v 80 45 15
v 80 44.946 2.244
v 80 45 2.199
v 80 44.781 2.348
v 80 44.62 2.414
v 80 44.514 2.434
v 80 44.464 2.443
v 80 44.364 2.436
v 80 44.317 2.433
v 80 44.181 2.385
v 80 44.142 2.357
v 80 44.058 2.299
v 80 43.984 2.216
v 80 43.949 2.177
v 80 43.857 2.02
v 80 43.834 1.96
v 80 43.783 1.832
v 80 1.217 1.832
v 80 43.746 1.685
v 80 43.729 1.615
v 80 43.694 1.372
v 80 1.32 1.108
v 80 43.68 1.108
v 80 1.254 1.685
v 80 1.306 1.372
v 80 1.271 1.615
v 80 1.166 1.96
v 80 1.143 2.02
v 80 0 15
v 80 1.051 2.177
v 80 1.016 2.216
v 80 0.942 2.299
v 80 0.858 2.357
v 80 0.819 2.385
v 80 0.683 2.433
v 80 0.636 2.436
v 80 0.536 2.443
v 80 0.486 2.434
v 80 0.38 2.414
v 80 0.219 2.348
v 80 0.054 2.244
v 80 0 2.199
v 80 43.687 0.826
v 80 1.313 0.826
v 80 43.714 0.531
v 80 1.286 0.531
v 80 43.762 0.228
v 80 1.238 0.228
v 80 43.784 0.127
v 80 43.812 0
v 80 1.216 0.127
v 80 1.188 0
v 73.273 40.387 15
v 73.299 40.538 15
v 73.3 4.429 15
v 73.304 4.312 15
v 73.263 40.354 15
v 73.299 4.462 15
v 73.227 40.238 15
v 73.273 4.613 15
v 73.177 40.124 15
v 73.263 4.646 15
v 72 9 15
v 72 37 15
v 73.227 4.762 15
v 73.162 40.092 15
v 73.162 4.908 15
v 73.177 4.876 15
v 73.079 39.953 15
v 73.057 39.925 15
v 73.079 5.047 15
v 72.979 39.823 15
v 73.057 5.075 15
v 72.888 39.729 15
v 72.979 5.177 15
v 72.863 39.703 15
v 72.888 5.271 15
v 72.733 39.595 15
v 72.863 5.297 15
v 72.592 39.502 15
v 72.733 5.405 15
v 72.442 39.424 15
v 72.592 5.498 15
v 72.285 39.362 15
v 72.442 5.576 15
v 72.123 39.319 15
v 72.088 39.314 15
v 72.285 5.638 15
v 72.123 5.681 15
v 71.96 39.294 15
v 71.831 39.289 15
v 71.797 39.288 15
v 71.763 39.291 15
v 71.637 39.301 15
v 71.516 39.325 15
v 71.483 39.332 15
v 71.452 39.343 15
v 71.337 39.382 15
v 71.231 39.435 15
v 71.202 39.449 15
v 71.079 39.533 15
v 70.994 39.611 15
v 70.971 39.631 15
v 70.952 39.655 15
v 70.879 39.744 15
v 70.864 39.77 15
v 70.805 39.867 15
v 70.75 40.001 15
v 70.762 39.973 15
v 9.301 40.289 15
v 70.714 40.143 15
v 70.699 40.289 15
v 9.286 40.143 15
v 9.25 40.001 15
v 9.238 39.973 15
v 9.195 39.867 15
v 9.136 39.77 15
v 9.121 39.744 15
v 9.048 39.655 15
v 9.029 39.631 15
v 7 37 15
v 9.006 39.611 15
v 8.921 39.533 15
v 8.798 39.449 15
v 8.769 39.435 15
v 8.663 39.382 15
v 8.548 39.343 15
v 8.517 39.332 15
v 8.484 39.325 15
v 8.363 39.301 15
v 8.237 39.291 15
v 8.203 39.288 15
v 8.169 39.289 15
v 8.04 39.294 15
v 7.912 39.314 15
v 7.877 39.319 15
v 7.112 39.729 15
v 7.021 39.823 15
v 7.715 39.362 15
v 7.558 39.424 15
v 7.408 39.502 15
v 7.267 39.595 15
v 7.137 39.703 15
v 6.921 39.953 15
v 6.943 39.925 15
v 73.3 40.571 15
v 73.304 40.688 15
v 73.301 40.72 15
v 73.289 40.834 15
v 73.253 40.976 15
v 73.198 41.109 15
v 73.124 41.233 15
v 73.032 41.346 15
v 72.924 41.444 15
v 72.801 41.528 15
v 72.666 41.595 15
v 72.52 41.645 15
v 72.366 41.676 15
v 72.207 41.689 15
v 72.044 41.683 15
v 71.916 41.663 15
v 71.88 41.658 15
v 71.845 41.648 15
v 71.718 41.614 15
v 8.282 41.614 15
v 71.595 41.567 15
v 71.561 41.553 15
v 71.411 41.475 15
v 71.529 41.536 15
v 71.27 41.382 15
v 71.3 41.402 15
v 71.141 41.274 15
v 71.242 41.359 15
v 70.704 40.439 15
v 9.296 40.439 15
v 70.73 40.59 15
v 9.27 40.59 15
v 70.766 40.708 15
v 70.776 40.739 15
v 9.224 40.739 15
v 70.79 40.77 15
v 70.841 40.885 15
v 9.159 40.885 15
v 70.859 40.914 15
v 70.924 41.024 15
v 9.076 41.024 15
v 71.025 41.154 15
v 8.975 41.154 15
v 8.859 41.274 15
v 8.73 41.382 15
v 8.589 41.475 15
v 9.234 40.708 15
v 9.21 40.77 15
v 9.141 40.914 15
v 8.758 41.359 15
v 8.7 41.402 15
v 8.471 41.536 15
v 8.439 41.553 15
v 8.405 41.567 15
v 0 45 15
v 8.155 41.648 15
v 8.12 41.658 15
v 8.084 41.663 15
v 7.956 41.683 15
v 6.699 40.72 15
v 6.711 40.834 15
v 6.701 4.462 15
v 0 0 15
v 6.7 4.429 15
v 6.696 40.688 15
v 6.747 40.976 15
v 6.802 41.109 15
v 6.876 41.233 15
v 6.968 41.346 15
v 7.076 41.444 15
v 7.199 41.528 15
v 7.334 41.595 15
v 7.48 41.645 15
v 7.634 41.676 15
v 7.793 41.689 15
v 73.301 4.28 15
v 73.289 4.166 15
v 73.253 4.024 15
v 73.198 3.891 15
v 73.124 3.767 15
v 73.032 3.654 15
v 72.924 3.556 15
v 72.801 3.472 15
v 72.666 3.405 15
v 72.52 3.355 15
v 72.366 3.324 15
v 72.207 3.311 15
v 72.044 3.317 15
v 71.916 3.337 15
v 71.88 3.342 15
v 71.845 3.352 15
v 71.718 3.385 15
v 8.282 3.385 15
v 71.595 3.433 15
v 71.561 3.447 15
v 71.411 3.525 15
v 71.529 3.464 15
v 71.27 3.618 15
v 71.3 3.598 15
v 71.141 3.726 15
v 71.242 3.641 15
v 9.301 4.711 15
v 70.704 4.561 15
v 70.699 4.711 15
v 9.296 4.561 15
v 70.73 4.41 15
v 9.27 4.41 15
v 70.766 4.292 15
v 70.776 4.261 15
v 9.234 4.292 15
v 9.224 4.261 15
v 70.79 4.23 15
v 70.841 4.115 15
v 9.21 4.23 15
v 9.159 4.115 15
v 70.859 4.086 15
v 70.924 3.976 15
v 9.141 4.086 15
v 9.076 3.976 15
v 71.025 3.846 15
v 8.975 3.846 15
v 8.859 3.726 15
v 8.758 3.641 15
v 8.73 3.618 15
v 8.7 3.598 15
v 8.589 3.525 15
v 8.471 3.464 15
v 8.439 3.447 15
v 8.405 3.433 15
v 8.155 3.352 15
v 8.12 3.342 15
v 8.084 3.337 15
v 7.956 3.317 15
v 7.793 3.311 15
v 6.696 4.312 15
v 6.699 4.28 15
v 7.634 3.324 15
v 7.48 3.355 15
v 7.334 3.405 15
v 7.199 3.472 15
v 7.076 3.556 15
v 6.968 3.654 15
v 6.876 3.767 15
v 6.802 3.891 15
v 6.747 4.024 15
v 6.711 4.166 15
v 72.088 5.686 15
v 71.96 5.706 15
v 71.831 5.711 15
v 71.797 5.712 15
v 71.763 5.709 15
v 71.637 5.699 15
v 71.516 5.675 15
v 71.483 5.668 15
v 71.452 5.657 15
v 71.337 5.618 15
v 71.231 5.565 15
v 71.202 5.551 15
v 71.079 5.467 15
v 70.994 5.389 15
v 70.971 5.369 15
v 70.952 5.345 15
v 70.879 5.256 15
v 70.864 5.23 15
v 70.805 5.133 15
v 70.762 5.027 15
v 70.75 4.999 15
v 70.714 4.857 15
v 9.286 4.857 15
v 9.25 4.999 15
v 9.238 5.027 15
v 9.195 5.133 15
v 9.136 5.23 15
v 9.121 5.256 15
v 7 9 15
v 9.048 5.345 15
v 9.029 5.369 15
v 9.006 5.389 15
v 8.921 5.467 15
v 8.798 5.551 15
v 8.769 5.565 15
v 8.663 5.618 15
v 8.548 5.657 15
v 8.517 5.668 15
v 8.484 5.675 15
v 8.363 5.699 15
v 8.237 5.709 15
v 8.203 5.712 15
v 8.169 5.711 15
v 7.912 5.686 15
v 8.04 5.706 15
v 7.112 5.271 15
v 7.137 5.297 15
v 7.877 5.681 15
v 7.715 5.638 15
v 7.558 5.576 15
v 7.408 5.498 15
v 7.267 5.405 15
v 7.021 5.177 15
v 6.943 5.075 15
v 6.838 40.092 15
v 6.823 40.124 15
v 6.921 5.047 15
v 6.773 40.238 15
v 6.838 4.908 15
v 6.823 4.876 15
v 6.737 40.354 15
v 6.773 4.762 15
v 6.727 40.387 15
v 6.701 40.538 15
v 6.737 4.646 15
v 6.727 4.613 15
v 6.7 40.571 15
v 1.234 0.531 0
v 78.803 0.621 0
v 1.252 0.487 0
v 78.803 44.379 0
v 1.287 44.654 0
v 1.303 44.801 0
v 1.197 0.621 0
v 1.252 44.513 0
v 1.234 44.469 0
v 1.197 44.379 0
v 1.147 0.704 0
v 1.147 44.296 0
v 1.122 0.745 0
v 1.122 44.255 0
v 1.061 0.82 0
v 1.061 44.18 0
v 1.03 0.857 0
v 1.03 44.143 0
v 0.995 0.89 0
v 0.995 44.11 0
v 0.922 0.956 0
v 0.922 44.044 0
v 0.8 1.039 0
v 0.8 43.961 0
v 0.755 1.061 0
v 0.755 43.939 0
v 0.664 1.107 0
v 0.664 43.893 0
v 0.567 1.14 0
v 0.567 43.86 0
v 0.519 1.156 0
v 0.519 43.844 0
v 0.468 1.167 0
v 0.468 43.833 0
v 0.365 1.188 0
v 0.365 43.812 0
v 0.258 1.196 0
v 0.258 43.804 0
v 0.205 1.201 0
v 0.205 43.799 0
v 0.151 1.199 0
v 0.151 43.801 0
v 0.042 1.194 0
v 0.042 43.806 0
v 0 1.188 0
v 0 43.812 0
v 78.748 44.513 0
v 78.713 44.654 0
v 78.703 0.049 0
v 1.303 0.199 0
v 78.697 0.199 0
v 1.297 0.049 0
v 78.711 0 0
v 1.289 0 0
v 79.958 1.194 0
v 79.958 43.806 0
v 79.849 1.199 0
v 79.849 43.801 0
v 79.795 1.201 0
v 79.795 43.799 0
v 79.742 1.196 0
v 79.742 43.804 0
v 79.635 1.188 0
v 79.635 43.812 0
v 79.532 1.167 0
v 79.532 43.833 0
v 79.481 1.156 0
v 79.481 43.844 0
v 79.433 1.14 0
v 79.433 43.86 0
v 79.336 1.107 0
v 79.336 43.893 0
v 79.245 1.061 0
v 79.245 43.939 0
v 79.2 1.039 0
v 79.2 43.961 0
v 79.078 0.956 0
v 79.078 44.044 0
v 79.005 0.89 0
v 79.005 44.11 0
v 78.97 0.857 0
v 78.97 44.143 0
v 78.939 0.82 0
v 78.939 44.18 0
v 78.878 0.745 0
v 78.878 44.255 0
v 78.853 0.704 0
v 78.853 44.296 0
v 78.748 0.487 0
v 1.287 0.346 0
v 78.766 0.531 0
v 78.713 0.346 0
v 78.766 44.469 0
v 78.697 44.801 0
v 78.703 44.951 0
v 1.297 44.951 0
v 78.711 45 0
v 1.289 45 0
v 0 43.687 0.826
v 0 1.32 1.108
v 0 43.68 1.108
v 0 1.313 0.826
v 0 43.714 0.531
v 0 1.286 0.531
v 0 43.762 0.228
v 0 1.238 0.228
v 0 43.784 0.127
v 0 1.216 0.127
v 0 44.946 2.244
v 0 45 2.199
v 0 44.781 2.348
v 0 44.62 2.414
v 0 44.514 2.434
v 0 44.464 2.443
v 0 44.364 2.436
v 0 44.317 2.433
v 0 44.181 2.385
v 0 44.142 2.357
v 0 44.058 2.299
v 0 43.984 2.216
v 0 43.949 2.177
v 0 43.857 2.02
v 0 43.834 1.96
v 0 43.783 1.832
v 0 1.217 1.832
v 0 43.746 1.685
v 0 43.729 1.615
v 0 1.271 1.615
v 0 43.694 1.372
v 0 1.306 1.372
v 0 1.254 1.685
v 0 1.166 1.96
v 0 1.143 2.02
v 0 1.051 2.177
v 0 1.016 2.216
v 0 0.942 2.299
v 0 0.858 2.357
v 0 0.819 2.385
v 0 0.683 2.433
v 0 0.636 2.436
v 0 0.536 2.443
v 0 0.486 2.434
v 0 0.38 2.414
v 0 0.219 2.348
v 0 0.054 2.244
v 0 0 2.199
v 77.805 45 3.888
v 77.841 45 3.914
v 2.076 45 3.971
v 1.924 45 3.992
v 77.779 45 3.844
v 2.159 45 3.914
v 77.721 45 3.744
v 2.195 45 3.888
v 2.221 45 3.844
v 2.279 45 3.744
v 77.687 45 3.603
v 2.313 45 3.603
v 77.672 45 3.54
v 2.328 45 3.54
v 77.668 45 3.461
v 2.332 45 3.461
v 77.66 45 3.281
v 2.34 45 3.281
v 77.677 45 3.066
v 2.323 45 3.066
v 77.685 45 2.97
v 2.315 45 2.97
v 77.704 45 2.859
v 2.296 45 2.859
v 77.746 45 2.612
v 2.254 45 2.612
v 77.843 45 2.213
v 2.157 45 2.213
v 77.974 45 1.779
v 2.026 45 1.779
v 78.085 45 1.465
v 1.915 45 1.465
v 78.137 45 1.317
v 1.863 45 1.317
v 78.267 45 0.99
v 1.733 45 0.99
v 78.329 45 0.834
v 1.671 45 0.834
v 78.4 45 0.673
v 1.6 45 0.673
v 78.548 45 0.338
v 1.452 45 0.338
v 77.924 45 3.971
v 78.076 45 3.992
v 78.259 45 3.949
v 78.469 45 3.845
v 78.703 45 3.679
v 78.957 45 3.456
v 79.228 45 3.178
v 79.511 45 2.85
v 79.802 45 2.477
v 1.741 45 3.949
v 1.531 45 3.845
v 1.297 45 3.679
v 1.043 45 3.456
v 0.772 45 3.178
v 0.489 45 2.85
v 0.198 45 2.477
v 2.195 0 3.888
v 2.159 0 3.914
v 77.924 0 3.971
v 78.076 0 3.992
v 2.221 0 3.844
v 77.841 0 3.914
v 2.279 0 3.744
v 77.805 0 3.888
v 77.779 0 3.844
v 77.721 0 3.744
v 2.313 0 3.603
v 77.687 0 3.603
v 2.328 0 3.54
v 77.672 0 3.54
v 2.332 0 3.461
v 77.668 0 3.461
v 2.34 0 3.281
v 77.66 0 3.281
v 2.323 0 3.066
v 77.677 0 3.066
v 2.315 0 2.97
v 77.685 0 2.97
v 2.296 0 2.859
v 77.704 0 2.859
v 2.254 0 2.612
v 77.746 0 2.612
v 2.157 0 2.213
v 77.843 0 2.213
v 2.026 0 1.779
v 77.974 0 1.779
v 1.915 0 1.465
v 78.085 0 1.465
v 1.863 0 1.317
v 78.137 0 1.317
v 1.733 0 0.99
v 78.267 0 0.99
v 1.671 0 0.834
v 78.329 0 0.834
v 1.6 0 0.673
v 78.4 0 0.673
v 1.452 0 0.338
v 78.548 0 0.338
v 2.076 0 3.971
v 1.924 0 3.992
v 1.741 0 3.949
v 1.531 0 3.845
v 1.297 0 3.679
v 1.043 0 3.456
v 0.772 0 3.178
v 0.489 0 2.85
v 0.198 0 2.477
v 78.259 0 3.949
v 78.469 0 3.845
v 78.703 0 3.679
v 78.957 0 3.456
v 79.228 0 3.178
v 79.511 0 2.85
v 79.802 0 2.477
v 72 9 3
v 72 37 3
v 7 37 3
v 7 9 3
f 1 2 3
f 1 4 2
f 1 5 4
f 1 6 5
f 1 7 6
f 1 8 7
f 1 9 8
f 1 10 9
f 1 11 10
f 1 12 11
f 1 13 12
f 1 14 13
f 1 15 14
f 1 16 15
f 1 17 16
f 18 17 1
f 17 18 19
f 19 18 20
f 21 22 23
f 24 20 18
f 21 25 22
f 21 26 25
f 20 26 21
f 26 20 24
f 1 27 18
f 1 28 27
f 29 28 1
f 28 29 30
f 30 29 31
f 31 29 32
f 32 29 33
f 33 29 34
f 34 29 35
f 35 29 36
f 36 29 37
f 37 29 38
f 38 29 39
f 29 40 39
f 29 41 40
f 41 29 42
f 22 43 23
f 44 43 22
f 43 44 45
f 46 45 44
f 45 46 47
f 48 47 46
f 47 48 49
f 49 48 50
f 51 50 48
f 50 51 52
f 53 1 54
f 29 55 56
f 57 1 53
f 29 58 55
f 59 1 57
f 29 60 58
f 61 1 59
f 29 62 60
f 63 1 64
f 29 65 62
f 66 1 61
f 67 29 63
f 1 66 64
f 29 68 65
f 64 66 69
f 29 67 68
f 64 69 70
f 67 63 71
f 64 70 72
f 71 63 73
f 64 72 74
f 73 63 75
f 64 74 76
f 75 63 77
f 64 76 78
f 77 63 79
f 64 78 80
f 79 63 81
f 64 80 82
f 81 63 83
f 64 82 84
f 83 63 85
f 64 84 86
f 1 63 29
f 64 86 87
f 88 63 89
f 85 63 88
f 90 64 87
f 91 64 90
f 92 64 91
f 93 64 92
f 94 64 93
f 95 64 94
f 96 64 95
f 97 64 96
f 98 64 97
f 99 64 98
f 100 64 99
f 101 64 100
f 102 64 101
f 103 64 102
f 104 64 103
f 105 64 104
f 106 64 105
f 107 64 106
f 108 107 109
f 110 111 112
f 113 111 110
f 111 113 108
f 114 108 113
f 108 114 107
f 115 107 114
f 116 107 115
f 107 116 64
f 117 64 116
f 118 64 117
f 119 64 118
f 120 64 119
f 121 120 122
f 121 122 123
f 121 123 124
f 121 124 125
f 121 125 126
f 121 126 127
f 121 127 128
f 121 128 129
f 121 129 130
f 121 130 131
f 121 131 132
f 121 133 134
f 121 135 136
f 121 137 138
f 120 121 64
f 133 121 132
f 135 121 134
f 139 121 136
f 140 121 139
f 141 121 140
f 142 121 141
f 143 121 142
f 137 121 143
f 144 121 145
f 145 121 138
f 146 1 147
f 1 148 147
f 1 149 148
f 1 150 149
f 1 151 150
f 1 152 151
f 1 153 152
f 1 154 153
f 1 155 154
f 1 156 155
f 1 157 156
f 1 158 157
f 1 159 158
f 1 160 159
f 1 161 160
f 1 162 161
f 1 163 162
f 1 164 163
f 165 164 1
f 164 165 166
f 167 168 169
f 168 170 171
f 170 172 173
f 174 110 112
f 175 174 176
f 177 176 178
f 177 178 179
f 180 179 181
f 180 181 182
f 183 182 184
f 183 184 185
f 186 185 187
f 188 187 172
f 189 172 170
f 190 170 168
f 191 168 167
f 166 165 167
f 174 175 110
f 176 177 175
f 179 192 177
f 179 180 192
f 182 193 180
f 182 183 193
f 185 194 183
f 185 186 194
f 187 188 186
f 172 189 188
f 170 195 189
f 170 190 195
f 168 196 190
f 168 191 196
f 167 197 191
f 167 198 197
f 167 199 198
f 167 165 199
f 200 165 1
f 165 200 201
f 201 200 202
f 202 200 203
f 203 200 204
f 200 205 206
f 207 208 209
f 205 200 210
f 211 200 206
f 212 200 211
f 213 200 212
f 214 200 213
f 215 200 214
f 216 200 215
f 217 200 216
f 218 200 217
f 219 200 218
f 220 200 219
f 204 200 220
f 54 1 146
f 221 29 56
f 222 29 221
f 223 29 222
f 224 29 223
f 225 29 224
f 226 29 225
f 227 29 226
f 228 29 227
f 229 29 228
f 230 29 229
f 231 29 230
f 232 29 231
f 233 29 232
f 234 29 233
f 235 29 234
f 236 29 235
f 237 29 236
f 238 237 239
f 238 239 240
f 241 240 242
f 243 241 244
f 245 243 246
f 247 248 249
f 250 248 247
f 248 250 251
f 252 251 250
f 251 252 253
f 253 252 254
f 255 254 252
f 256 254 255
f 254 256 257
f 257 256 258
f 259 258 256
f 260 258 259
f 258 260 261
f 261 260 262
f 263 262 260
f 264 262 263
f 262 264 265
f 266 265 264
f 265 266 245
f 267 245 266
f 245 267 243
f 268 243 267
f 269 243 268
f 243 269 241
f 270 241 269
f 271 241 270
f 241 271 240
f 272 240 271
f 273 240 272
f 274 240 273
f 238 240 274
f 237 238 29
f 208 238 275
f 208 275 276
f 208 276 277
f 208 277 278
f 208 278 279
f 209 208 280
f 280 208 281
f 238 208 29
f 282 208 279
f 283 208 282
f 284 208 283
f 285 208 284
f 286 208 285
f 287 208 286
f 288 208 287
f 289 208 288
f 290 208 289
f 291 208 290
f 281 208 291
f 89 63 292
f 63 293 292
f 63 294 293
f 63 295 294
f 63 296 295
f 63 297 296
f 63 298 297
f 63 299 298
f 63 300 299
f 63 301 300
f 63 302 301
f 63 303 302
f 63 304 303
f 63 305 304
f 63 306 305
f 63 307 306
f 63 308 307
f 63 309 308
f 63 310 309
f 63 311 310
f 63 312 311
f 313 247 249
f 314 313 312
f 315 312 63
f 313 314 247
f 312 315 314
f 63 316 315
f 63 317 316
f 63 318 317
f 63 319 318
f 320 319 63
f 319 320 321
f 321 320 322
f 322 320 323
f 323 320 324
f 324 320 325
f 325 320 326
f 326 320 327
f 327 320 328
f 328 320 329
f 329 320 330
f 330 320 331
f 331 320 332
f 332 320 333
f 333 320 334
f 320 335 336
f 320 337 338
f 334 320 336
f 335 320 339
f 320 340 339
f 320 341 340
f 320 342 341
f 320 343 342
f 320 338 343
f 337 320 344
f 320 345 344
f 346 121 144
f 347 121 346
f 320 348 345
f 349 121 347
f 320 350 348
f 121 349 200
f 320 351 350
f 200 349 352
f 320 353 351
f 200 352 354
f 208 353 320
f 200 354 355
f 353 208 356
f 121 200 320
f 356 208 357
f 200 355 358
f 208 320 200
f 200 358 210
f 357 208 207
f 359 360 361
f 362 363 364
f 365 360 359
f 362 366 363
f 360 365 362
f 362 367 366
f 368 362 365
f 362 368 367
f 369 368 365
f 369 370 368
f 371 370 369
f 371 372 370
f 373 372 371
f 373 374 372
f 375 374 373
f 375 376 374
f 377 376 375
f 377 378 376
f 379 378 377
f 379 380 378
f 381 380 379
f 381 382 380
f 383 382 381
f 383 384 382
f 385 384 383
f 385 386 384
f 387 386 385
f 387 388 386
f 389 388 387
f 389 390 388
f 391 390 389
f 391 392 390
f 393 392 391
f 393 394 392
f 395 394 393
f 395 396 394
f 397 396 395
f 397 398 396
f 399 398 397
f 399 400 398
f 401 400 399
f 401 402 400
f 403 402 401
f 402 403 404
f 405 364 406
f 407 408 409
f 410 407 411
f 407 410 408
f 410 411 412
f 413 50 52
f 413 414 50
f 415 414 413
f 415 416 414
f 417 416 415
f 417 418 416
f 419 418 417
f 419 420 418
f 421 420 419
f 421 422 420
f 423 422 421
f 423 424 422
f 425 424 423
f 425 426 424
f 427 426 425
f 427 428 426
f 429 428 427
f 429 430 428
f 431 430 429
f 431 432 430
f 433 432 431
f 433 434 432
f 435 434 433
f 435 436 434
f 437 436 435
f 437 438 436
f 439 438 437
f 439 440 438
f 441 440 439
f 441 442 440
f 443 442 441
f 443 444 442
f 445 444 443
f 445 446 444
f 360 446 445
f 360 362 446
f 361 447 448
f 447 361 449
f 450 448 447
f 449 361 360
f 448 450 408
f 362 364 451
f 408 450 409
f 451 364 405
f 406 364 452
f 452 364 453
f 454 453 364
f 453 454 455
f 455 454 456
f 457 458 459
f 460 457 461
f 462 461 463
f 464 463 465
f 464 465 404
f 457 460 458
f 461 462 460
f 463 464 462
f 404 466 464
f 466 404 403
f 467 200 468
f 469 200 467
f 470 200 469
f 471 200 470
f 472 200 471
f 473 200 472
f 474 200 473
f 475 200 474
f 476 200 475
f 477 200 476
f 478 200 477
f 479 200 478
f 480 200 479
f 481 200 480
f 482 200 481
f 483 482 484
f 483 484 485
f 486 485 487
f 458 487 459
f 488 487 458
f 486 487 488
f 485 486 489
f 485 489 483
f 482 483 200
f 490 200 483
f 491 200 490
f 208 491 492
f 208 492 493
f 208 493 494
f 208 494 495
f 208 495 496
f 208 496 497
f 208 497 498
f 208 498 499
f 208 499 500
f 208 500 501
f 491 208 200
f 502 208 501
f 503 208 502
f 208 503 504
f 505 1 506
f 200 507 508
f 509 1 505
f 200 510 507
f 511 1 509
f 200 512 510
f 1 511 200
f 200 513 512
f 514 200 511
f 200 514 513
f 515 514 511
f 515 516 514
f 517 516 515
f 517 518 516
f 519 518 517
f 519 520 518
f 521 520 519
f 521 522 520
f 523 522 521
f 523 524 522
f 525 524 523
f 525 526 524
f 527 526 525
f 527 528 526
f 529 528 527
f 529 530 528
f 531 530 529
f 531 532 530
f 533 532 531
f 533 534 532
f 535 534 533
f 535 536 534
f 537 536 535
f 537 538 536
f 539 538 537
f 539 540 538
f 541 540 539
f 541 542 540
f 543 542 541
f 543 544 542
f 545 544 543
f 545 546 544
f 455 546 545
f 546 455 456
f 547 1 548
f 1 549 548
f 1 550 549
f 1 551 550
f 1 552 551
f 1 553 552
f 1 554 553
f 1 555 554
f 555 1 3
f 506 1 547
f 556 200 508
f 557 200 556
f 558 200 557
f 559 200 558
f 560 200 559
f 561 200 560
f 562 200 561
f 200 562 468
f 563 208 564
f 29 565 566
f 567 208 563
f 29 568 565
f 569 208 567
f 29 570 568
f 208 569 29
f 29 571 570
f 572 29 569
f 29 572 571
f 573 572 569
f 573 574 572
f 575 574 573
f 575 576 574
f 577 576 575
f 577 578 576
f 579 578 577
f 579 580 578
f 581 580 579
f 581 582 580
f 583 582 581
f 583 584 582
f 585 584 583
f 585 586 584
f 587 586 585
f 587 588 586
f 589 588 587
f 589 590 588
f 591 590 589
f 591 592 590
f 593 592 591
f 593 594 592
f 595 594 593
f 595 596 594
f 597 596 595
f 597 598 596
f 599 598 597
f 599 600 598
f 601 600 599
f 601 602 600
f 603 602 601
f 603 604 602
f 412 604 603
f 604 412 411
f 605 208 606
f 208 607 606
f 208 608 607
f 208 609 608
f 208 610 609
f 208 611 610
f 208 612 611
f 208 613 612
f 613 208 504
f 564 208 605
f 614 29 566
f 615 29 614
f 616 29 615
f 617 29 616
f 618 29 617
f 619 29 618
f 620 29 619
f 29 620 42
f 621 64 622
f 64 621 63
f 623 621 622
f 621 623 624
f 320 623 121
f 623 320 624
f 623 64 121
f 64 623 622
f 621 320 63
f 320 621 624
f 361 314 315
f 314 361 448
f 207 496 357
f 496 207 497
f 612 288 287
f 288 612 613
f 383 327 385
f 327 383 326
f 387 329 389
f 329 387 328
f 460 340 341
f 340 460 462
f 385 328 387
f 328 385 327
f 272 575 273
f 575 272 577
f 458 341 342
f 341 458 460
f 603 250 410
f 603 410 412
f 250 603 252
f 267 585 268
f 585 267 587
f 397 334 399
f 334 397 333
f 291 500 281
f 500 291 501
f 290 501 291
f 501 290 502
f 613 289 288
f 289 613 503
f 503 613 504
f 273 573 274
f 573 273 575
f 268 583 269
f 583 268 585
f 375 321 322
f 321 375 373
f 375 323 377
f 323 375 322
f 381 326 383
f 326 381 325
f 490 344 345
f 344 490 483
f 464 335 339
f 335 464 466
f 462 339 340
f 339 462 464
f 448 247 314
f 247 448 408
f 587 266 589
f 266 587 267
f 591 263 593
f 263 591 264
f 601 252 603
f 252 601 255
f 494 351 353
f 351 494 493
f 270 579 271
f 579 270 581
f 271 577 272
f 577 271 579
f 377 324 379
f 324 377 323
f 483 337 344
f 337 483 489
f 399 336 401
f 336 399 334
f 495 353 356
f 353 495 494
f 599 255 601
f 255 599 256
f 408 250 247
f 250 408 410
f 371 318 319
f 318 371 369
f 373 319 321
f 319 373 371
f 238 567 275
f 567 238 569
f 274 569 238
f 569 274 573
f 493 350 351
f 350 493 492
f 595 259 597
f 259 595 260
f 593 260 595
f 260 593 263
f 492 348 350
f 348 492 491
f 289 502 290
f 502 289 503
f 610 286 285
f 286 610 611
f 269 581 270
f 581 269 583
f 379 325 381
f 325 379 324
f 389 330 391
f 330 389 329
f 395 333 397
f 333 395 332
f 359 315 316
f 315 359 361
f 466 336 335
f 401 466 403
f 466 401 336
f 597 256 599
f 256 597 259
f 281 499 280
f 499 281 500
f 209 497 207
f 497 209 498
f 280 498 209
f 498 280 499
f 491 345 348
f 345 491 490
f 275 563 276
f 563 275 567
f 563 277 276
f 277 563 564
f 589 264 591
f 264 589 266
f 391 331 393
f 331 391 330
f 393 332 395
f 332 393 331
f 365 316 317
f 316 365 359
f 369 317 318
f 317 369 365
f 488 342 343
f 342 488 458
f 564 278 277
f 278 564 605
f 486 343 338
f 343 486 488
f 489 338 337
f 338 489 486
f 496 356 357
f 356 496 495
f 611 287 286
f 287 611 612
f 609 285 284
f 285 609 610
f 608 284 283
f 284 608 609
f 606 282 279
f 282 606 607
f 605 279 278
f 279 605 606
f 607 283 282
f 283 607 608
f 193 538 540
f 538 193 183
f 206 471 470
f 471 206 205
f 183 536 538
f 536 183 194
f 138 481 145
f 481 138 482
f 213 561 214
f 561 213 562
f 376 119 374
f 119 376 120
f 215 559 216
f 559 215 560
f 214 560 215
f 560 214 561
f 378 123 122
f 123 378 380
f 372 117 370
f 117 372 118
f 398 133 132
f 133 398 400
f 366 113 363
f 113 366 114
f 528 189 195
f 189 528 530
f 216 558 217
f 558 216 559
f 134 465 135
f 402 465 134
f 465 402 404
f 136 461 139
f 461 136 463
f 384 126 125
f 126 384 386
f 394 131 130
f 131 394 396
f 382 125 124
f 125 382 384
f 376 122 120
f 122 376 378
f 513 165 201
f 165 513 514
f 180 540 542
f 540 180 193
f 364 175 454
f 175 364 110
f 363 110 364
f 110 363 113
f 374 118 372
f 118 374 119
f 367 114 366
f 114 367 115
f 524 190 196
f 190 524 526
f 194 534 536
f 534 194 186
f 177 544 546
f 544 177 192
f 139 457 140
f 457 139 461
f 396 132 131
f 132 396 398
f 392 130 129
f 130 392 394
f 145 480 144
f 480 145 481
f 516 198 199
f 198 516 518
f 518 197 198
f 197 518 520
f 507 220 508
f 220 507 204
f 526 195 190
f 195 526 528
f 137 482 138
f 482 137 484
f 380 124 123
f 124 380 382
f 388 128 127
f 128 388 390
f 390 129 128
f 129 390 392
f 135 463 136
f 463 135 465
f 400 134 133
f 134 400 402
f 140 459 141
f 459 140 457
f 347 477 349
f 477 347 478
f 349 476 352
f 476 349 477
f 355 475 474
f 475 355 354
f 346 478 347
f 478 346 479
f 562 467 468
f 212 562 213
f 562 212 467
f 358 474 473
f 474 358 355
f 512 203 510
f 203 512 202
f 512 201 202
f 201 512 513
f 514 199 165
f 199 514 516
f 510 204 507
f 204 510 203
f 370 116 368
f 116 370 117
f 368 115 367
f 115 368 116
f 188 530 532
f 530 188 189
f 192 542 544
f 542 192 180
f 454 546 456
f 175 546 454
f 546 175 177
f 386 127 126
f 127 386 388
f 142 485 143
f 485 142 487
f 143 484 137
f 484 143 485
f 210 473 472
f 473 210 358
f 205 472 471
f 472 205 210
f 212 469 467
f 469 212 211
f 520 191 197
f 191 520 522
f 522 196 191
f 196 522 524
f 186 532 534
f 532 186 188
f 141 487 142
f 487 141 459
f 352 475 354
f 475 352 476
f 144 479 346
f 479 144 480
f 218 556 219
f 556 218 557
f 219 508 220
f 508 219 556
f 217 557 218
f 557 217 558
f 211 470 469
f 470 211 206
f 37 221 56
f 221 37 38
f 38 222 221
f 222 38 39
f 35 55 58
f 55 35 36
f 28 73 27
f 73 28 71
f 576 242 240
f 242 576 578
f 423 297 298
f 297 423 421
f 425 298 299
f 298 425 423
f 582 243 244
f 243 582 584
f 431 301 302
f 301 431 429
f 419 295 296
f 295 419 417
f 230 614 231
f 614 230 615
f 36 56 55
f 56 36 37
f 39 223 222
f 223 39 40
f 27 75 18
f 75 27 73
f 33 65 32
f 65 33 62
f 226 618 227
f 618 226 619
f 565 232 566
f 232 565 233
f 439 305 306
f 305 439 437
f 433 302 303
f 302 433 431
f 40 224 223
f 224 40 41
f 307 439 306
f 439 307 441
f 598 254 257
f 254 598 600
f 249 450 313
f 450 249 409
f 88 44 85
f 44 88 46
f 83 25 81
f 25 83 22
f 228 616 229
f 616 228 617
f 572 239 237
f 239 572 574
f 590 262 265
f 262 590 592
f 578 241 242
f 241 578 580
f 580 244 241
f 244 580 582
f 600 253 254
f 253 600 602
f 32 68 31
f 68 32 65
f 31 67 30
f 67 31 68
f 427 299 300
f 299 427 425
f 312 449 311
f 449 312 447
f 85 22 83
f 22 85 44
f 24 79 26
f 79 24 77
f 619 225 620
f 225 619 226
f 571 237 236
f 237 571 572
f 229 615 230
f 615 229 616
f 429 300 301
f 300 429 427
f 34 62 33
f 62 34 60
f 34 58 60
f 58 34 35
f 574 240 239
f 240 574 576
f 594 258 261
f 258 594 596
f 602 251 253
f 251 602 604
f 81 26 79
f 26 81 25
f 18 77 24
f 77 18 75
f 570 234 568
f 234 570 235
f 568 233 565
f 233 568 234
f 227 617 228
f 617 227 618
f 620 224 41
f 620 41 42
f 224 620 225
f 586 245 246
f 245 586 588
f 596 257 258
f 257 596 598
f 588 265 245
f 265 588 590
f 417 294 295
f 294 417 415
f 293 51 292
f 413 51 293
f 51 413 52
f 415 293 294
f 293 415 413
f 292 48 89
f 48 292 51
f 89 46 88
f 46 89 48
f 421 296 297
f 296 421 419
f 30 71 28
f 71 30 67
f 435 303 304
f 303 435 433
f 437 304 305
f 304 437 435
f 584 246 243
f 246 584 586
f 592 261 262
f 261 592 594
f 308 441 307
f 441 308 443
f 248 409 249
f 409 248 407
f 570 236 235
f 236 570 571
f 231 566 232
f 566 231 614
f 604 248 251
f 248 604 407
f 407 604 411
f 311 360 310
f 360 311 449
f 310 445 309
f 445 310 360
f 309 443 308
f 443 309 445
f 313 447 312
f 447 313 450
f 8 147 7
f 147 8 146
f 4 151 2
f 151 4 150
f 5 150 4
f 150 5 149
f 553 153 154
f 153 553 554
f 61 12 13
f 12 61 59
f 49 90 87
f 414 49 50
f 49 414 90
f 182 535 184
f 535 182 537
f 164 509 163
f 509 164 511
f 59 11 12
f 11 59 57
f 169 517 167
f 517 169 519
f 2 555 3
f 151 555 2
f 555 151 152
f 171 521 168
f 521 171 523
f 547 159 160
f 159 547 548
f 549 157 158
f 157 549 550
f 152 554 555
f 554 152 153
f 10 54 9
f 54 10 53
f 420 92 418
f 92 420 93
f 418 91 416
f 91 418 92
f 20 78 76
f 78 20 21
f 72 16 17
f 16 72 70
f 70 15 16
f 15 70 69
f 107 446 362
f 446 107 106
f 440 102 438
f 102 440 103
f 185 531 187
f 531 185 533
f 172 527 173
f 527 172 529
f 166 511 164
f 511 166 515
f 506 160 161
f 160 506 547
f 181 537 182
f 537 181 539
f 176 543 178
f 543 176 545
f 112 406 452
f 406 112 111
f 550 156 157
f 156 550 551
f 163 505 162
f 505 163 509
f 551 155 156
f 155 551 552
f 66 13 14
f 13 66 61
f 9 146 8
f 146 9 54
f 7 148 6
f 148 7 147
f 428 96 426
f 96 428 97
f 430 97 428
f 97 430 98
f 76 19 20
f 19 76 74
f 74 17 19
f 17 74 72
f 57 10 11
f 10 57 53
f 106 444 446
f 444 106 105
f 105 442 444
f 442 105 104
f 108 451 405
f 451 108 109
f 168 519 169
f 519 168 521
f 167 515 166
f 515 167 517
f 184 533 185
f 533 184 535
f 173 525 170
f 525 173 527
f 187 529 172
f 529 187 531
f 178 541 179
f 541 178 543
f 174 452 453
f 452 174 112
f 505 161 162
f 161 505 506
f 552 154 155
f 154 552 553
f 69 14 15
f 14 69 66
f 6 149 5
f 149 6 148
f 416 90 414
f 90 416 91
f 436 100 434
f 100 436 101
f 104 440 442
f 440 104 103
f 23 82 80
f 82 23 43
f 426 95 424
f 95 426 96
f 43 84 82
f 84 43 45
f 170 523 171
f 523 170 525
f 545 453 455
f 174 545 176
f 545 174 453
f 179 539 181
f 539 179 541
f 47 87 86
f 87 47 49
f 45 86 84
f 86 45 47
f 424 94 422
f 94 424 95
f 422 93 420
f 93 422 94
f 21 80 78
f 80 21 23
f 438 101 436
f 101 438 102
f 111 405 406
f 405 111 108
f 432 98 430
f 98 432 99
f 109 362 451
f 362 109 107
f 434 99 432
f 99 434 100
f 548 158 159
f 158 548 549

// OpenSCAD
BODY_LENGTH = 80;
BODY_WIDTH = 45;
BODY_HEIGHT = 15;

BATTERY_BOX_LENGTH = 65;
BATTERY_BOX_WIDTH = 28;
BATTERY_BOX_HEIGHT = 15;

SWAB_DIAMETER = 2.3;
SWAB_LENGTH = 150;

difference() {
    
    // Body
    cube([BODY_LENGTH,BODY_WIDTH,BODY_HEIGHT]);
    
    // Subtrackt 
    translate([7,9,3]){
        #cube([BATTERY_BOX_LENGTH, BATTERY_BOX_WIDTH, BATTERY_BOX_HEIGHT]);
    }
    
    translate([0,0,0]){
        rotate([-10,30,10]){
            translate([0,0,-100]){
                #cylinder(r=SWAB_DIAMETER/2, h=SWAB_LENGTH,$fn=50);
            }
        }
    }
    
    translate([0,BODY_WIDTH,0]){
        rotate([10,30,-10]){
            translate([0,0,-100]){
                #cylinder(r=SWAB_DIAMETER/2, h=SWAB_LENGTH,$fn=50);
            }
        }
    }
    
    translate([BODY_LENGTH,0,0]){
        rotate([-10,-30,-10]){
            translate([0,0,-100]){
                #cylinder(r=SWAB_DIAMETER/2, h=SWAB_LENGTH,$fn=50);
            }
        }
    }
    
    translate([BODY_LENGTH,BODY_WIDTH,0]){
        rotate([10,-30,10]){
            translate([0,0,-100]){
                #cylinder(r=SWAB_DIAMETER/2, h=SWAB_LENGTH,$fn=50);
            }
        }
    }
}
